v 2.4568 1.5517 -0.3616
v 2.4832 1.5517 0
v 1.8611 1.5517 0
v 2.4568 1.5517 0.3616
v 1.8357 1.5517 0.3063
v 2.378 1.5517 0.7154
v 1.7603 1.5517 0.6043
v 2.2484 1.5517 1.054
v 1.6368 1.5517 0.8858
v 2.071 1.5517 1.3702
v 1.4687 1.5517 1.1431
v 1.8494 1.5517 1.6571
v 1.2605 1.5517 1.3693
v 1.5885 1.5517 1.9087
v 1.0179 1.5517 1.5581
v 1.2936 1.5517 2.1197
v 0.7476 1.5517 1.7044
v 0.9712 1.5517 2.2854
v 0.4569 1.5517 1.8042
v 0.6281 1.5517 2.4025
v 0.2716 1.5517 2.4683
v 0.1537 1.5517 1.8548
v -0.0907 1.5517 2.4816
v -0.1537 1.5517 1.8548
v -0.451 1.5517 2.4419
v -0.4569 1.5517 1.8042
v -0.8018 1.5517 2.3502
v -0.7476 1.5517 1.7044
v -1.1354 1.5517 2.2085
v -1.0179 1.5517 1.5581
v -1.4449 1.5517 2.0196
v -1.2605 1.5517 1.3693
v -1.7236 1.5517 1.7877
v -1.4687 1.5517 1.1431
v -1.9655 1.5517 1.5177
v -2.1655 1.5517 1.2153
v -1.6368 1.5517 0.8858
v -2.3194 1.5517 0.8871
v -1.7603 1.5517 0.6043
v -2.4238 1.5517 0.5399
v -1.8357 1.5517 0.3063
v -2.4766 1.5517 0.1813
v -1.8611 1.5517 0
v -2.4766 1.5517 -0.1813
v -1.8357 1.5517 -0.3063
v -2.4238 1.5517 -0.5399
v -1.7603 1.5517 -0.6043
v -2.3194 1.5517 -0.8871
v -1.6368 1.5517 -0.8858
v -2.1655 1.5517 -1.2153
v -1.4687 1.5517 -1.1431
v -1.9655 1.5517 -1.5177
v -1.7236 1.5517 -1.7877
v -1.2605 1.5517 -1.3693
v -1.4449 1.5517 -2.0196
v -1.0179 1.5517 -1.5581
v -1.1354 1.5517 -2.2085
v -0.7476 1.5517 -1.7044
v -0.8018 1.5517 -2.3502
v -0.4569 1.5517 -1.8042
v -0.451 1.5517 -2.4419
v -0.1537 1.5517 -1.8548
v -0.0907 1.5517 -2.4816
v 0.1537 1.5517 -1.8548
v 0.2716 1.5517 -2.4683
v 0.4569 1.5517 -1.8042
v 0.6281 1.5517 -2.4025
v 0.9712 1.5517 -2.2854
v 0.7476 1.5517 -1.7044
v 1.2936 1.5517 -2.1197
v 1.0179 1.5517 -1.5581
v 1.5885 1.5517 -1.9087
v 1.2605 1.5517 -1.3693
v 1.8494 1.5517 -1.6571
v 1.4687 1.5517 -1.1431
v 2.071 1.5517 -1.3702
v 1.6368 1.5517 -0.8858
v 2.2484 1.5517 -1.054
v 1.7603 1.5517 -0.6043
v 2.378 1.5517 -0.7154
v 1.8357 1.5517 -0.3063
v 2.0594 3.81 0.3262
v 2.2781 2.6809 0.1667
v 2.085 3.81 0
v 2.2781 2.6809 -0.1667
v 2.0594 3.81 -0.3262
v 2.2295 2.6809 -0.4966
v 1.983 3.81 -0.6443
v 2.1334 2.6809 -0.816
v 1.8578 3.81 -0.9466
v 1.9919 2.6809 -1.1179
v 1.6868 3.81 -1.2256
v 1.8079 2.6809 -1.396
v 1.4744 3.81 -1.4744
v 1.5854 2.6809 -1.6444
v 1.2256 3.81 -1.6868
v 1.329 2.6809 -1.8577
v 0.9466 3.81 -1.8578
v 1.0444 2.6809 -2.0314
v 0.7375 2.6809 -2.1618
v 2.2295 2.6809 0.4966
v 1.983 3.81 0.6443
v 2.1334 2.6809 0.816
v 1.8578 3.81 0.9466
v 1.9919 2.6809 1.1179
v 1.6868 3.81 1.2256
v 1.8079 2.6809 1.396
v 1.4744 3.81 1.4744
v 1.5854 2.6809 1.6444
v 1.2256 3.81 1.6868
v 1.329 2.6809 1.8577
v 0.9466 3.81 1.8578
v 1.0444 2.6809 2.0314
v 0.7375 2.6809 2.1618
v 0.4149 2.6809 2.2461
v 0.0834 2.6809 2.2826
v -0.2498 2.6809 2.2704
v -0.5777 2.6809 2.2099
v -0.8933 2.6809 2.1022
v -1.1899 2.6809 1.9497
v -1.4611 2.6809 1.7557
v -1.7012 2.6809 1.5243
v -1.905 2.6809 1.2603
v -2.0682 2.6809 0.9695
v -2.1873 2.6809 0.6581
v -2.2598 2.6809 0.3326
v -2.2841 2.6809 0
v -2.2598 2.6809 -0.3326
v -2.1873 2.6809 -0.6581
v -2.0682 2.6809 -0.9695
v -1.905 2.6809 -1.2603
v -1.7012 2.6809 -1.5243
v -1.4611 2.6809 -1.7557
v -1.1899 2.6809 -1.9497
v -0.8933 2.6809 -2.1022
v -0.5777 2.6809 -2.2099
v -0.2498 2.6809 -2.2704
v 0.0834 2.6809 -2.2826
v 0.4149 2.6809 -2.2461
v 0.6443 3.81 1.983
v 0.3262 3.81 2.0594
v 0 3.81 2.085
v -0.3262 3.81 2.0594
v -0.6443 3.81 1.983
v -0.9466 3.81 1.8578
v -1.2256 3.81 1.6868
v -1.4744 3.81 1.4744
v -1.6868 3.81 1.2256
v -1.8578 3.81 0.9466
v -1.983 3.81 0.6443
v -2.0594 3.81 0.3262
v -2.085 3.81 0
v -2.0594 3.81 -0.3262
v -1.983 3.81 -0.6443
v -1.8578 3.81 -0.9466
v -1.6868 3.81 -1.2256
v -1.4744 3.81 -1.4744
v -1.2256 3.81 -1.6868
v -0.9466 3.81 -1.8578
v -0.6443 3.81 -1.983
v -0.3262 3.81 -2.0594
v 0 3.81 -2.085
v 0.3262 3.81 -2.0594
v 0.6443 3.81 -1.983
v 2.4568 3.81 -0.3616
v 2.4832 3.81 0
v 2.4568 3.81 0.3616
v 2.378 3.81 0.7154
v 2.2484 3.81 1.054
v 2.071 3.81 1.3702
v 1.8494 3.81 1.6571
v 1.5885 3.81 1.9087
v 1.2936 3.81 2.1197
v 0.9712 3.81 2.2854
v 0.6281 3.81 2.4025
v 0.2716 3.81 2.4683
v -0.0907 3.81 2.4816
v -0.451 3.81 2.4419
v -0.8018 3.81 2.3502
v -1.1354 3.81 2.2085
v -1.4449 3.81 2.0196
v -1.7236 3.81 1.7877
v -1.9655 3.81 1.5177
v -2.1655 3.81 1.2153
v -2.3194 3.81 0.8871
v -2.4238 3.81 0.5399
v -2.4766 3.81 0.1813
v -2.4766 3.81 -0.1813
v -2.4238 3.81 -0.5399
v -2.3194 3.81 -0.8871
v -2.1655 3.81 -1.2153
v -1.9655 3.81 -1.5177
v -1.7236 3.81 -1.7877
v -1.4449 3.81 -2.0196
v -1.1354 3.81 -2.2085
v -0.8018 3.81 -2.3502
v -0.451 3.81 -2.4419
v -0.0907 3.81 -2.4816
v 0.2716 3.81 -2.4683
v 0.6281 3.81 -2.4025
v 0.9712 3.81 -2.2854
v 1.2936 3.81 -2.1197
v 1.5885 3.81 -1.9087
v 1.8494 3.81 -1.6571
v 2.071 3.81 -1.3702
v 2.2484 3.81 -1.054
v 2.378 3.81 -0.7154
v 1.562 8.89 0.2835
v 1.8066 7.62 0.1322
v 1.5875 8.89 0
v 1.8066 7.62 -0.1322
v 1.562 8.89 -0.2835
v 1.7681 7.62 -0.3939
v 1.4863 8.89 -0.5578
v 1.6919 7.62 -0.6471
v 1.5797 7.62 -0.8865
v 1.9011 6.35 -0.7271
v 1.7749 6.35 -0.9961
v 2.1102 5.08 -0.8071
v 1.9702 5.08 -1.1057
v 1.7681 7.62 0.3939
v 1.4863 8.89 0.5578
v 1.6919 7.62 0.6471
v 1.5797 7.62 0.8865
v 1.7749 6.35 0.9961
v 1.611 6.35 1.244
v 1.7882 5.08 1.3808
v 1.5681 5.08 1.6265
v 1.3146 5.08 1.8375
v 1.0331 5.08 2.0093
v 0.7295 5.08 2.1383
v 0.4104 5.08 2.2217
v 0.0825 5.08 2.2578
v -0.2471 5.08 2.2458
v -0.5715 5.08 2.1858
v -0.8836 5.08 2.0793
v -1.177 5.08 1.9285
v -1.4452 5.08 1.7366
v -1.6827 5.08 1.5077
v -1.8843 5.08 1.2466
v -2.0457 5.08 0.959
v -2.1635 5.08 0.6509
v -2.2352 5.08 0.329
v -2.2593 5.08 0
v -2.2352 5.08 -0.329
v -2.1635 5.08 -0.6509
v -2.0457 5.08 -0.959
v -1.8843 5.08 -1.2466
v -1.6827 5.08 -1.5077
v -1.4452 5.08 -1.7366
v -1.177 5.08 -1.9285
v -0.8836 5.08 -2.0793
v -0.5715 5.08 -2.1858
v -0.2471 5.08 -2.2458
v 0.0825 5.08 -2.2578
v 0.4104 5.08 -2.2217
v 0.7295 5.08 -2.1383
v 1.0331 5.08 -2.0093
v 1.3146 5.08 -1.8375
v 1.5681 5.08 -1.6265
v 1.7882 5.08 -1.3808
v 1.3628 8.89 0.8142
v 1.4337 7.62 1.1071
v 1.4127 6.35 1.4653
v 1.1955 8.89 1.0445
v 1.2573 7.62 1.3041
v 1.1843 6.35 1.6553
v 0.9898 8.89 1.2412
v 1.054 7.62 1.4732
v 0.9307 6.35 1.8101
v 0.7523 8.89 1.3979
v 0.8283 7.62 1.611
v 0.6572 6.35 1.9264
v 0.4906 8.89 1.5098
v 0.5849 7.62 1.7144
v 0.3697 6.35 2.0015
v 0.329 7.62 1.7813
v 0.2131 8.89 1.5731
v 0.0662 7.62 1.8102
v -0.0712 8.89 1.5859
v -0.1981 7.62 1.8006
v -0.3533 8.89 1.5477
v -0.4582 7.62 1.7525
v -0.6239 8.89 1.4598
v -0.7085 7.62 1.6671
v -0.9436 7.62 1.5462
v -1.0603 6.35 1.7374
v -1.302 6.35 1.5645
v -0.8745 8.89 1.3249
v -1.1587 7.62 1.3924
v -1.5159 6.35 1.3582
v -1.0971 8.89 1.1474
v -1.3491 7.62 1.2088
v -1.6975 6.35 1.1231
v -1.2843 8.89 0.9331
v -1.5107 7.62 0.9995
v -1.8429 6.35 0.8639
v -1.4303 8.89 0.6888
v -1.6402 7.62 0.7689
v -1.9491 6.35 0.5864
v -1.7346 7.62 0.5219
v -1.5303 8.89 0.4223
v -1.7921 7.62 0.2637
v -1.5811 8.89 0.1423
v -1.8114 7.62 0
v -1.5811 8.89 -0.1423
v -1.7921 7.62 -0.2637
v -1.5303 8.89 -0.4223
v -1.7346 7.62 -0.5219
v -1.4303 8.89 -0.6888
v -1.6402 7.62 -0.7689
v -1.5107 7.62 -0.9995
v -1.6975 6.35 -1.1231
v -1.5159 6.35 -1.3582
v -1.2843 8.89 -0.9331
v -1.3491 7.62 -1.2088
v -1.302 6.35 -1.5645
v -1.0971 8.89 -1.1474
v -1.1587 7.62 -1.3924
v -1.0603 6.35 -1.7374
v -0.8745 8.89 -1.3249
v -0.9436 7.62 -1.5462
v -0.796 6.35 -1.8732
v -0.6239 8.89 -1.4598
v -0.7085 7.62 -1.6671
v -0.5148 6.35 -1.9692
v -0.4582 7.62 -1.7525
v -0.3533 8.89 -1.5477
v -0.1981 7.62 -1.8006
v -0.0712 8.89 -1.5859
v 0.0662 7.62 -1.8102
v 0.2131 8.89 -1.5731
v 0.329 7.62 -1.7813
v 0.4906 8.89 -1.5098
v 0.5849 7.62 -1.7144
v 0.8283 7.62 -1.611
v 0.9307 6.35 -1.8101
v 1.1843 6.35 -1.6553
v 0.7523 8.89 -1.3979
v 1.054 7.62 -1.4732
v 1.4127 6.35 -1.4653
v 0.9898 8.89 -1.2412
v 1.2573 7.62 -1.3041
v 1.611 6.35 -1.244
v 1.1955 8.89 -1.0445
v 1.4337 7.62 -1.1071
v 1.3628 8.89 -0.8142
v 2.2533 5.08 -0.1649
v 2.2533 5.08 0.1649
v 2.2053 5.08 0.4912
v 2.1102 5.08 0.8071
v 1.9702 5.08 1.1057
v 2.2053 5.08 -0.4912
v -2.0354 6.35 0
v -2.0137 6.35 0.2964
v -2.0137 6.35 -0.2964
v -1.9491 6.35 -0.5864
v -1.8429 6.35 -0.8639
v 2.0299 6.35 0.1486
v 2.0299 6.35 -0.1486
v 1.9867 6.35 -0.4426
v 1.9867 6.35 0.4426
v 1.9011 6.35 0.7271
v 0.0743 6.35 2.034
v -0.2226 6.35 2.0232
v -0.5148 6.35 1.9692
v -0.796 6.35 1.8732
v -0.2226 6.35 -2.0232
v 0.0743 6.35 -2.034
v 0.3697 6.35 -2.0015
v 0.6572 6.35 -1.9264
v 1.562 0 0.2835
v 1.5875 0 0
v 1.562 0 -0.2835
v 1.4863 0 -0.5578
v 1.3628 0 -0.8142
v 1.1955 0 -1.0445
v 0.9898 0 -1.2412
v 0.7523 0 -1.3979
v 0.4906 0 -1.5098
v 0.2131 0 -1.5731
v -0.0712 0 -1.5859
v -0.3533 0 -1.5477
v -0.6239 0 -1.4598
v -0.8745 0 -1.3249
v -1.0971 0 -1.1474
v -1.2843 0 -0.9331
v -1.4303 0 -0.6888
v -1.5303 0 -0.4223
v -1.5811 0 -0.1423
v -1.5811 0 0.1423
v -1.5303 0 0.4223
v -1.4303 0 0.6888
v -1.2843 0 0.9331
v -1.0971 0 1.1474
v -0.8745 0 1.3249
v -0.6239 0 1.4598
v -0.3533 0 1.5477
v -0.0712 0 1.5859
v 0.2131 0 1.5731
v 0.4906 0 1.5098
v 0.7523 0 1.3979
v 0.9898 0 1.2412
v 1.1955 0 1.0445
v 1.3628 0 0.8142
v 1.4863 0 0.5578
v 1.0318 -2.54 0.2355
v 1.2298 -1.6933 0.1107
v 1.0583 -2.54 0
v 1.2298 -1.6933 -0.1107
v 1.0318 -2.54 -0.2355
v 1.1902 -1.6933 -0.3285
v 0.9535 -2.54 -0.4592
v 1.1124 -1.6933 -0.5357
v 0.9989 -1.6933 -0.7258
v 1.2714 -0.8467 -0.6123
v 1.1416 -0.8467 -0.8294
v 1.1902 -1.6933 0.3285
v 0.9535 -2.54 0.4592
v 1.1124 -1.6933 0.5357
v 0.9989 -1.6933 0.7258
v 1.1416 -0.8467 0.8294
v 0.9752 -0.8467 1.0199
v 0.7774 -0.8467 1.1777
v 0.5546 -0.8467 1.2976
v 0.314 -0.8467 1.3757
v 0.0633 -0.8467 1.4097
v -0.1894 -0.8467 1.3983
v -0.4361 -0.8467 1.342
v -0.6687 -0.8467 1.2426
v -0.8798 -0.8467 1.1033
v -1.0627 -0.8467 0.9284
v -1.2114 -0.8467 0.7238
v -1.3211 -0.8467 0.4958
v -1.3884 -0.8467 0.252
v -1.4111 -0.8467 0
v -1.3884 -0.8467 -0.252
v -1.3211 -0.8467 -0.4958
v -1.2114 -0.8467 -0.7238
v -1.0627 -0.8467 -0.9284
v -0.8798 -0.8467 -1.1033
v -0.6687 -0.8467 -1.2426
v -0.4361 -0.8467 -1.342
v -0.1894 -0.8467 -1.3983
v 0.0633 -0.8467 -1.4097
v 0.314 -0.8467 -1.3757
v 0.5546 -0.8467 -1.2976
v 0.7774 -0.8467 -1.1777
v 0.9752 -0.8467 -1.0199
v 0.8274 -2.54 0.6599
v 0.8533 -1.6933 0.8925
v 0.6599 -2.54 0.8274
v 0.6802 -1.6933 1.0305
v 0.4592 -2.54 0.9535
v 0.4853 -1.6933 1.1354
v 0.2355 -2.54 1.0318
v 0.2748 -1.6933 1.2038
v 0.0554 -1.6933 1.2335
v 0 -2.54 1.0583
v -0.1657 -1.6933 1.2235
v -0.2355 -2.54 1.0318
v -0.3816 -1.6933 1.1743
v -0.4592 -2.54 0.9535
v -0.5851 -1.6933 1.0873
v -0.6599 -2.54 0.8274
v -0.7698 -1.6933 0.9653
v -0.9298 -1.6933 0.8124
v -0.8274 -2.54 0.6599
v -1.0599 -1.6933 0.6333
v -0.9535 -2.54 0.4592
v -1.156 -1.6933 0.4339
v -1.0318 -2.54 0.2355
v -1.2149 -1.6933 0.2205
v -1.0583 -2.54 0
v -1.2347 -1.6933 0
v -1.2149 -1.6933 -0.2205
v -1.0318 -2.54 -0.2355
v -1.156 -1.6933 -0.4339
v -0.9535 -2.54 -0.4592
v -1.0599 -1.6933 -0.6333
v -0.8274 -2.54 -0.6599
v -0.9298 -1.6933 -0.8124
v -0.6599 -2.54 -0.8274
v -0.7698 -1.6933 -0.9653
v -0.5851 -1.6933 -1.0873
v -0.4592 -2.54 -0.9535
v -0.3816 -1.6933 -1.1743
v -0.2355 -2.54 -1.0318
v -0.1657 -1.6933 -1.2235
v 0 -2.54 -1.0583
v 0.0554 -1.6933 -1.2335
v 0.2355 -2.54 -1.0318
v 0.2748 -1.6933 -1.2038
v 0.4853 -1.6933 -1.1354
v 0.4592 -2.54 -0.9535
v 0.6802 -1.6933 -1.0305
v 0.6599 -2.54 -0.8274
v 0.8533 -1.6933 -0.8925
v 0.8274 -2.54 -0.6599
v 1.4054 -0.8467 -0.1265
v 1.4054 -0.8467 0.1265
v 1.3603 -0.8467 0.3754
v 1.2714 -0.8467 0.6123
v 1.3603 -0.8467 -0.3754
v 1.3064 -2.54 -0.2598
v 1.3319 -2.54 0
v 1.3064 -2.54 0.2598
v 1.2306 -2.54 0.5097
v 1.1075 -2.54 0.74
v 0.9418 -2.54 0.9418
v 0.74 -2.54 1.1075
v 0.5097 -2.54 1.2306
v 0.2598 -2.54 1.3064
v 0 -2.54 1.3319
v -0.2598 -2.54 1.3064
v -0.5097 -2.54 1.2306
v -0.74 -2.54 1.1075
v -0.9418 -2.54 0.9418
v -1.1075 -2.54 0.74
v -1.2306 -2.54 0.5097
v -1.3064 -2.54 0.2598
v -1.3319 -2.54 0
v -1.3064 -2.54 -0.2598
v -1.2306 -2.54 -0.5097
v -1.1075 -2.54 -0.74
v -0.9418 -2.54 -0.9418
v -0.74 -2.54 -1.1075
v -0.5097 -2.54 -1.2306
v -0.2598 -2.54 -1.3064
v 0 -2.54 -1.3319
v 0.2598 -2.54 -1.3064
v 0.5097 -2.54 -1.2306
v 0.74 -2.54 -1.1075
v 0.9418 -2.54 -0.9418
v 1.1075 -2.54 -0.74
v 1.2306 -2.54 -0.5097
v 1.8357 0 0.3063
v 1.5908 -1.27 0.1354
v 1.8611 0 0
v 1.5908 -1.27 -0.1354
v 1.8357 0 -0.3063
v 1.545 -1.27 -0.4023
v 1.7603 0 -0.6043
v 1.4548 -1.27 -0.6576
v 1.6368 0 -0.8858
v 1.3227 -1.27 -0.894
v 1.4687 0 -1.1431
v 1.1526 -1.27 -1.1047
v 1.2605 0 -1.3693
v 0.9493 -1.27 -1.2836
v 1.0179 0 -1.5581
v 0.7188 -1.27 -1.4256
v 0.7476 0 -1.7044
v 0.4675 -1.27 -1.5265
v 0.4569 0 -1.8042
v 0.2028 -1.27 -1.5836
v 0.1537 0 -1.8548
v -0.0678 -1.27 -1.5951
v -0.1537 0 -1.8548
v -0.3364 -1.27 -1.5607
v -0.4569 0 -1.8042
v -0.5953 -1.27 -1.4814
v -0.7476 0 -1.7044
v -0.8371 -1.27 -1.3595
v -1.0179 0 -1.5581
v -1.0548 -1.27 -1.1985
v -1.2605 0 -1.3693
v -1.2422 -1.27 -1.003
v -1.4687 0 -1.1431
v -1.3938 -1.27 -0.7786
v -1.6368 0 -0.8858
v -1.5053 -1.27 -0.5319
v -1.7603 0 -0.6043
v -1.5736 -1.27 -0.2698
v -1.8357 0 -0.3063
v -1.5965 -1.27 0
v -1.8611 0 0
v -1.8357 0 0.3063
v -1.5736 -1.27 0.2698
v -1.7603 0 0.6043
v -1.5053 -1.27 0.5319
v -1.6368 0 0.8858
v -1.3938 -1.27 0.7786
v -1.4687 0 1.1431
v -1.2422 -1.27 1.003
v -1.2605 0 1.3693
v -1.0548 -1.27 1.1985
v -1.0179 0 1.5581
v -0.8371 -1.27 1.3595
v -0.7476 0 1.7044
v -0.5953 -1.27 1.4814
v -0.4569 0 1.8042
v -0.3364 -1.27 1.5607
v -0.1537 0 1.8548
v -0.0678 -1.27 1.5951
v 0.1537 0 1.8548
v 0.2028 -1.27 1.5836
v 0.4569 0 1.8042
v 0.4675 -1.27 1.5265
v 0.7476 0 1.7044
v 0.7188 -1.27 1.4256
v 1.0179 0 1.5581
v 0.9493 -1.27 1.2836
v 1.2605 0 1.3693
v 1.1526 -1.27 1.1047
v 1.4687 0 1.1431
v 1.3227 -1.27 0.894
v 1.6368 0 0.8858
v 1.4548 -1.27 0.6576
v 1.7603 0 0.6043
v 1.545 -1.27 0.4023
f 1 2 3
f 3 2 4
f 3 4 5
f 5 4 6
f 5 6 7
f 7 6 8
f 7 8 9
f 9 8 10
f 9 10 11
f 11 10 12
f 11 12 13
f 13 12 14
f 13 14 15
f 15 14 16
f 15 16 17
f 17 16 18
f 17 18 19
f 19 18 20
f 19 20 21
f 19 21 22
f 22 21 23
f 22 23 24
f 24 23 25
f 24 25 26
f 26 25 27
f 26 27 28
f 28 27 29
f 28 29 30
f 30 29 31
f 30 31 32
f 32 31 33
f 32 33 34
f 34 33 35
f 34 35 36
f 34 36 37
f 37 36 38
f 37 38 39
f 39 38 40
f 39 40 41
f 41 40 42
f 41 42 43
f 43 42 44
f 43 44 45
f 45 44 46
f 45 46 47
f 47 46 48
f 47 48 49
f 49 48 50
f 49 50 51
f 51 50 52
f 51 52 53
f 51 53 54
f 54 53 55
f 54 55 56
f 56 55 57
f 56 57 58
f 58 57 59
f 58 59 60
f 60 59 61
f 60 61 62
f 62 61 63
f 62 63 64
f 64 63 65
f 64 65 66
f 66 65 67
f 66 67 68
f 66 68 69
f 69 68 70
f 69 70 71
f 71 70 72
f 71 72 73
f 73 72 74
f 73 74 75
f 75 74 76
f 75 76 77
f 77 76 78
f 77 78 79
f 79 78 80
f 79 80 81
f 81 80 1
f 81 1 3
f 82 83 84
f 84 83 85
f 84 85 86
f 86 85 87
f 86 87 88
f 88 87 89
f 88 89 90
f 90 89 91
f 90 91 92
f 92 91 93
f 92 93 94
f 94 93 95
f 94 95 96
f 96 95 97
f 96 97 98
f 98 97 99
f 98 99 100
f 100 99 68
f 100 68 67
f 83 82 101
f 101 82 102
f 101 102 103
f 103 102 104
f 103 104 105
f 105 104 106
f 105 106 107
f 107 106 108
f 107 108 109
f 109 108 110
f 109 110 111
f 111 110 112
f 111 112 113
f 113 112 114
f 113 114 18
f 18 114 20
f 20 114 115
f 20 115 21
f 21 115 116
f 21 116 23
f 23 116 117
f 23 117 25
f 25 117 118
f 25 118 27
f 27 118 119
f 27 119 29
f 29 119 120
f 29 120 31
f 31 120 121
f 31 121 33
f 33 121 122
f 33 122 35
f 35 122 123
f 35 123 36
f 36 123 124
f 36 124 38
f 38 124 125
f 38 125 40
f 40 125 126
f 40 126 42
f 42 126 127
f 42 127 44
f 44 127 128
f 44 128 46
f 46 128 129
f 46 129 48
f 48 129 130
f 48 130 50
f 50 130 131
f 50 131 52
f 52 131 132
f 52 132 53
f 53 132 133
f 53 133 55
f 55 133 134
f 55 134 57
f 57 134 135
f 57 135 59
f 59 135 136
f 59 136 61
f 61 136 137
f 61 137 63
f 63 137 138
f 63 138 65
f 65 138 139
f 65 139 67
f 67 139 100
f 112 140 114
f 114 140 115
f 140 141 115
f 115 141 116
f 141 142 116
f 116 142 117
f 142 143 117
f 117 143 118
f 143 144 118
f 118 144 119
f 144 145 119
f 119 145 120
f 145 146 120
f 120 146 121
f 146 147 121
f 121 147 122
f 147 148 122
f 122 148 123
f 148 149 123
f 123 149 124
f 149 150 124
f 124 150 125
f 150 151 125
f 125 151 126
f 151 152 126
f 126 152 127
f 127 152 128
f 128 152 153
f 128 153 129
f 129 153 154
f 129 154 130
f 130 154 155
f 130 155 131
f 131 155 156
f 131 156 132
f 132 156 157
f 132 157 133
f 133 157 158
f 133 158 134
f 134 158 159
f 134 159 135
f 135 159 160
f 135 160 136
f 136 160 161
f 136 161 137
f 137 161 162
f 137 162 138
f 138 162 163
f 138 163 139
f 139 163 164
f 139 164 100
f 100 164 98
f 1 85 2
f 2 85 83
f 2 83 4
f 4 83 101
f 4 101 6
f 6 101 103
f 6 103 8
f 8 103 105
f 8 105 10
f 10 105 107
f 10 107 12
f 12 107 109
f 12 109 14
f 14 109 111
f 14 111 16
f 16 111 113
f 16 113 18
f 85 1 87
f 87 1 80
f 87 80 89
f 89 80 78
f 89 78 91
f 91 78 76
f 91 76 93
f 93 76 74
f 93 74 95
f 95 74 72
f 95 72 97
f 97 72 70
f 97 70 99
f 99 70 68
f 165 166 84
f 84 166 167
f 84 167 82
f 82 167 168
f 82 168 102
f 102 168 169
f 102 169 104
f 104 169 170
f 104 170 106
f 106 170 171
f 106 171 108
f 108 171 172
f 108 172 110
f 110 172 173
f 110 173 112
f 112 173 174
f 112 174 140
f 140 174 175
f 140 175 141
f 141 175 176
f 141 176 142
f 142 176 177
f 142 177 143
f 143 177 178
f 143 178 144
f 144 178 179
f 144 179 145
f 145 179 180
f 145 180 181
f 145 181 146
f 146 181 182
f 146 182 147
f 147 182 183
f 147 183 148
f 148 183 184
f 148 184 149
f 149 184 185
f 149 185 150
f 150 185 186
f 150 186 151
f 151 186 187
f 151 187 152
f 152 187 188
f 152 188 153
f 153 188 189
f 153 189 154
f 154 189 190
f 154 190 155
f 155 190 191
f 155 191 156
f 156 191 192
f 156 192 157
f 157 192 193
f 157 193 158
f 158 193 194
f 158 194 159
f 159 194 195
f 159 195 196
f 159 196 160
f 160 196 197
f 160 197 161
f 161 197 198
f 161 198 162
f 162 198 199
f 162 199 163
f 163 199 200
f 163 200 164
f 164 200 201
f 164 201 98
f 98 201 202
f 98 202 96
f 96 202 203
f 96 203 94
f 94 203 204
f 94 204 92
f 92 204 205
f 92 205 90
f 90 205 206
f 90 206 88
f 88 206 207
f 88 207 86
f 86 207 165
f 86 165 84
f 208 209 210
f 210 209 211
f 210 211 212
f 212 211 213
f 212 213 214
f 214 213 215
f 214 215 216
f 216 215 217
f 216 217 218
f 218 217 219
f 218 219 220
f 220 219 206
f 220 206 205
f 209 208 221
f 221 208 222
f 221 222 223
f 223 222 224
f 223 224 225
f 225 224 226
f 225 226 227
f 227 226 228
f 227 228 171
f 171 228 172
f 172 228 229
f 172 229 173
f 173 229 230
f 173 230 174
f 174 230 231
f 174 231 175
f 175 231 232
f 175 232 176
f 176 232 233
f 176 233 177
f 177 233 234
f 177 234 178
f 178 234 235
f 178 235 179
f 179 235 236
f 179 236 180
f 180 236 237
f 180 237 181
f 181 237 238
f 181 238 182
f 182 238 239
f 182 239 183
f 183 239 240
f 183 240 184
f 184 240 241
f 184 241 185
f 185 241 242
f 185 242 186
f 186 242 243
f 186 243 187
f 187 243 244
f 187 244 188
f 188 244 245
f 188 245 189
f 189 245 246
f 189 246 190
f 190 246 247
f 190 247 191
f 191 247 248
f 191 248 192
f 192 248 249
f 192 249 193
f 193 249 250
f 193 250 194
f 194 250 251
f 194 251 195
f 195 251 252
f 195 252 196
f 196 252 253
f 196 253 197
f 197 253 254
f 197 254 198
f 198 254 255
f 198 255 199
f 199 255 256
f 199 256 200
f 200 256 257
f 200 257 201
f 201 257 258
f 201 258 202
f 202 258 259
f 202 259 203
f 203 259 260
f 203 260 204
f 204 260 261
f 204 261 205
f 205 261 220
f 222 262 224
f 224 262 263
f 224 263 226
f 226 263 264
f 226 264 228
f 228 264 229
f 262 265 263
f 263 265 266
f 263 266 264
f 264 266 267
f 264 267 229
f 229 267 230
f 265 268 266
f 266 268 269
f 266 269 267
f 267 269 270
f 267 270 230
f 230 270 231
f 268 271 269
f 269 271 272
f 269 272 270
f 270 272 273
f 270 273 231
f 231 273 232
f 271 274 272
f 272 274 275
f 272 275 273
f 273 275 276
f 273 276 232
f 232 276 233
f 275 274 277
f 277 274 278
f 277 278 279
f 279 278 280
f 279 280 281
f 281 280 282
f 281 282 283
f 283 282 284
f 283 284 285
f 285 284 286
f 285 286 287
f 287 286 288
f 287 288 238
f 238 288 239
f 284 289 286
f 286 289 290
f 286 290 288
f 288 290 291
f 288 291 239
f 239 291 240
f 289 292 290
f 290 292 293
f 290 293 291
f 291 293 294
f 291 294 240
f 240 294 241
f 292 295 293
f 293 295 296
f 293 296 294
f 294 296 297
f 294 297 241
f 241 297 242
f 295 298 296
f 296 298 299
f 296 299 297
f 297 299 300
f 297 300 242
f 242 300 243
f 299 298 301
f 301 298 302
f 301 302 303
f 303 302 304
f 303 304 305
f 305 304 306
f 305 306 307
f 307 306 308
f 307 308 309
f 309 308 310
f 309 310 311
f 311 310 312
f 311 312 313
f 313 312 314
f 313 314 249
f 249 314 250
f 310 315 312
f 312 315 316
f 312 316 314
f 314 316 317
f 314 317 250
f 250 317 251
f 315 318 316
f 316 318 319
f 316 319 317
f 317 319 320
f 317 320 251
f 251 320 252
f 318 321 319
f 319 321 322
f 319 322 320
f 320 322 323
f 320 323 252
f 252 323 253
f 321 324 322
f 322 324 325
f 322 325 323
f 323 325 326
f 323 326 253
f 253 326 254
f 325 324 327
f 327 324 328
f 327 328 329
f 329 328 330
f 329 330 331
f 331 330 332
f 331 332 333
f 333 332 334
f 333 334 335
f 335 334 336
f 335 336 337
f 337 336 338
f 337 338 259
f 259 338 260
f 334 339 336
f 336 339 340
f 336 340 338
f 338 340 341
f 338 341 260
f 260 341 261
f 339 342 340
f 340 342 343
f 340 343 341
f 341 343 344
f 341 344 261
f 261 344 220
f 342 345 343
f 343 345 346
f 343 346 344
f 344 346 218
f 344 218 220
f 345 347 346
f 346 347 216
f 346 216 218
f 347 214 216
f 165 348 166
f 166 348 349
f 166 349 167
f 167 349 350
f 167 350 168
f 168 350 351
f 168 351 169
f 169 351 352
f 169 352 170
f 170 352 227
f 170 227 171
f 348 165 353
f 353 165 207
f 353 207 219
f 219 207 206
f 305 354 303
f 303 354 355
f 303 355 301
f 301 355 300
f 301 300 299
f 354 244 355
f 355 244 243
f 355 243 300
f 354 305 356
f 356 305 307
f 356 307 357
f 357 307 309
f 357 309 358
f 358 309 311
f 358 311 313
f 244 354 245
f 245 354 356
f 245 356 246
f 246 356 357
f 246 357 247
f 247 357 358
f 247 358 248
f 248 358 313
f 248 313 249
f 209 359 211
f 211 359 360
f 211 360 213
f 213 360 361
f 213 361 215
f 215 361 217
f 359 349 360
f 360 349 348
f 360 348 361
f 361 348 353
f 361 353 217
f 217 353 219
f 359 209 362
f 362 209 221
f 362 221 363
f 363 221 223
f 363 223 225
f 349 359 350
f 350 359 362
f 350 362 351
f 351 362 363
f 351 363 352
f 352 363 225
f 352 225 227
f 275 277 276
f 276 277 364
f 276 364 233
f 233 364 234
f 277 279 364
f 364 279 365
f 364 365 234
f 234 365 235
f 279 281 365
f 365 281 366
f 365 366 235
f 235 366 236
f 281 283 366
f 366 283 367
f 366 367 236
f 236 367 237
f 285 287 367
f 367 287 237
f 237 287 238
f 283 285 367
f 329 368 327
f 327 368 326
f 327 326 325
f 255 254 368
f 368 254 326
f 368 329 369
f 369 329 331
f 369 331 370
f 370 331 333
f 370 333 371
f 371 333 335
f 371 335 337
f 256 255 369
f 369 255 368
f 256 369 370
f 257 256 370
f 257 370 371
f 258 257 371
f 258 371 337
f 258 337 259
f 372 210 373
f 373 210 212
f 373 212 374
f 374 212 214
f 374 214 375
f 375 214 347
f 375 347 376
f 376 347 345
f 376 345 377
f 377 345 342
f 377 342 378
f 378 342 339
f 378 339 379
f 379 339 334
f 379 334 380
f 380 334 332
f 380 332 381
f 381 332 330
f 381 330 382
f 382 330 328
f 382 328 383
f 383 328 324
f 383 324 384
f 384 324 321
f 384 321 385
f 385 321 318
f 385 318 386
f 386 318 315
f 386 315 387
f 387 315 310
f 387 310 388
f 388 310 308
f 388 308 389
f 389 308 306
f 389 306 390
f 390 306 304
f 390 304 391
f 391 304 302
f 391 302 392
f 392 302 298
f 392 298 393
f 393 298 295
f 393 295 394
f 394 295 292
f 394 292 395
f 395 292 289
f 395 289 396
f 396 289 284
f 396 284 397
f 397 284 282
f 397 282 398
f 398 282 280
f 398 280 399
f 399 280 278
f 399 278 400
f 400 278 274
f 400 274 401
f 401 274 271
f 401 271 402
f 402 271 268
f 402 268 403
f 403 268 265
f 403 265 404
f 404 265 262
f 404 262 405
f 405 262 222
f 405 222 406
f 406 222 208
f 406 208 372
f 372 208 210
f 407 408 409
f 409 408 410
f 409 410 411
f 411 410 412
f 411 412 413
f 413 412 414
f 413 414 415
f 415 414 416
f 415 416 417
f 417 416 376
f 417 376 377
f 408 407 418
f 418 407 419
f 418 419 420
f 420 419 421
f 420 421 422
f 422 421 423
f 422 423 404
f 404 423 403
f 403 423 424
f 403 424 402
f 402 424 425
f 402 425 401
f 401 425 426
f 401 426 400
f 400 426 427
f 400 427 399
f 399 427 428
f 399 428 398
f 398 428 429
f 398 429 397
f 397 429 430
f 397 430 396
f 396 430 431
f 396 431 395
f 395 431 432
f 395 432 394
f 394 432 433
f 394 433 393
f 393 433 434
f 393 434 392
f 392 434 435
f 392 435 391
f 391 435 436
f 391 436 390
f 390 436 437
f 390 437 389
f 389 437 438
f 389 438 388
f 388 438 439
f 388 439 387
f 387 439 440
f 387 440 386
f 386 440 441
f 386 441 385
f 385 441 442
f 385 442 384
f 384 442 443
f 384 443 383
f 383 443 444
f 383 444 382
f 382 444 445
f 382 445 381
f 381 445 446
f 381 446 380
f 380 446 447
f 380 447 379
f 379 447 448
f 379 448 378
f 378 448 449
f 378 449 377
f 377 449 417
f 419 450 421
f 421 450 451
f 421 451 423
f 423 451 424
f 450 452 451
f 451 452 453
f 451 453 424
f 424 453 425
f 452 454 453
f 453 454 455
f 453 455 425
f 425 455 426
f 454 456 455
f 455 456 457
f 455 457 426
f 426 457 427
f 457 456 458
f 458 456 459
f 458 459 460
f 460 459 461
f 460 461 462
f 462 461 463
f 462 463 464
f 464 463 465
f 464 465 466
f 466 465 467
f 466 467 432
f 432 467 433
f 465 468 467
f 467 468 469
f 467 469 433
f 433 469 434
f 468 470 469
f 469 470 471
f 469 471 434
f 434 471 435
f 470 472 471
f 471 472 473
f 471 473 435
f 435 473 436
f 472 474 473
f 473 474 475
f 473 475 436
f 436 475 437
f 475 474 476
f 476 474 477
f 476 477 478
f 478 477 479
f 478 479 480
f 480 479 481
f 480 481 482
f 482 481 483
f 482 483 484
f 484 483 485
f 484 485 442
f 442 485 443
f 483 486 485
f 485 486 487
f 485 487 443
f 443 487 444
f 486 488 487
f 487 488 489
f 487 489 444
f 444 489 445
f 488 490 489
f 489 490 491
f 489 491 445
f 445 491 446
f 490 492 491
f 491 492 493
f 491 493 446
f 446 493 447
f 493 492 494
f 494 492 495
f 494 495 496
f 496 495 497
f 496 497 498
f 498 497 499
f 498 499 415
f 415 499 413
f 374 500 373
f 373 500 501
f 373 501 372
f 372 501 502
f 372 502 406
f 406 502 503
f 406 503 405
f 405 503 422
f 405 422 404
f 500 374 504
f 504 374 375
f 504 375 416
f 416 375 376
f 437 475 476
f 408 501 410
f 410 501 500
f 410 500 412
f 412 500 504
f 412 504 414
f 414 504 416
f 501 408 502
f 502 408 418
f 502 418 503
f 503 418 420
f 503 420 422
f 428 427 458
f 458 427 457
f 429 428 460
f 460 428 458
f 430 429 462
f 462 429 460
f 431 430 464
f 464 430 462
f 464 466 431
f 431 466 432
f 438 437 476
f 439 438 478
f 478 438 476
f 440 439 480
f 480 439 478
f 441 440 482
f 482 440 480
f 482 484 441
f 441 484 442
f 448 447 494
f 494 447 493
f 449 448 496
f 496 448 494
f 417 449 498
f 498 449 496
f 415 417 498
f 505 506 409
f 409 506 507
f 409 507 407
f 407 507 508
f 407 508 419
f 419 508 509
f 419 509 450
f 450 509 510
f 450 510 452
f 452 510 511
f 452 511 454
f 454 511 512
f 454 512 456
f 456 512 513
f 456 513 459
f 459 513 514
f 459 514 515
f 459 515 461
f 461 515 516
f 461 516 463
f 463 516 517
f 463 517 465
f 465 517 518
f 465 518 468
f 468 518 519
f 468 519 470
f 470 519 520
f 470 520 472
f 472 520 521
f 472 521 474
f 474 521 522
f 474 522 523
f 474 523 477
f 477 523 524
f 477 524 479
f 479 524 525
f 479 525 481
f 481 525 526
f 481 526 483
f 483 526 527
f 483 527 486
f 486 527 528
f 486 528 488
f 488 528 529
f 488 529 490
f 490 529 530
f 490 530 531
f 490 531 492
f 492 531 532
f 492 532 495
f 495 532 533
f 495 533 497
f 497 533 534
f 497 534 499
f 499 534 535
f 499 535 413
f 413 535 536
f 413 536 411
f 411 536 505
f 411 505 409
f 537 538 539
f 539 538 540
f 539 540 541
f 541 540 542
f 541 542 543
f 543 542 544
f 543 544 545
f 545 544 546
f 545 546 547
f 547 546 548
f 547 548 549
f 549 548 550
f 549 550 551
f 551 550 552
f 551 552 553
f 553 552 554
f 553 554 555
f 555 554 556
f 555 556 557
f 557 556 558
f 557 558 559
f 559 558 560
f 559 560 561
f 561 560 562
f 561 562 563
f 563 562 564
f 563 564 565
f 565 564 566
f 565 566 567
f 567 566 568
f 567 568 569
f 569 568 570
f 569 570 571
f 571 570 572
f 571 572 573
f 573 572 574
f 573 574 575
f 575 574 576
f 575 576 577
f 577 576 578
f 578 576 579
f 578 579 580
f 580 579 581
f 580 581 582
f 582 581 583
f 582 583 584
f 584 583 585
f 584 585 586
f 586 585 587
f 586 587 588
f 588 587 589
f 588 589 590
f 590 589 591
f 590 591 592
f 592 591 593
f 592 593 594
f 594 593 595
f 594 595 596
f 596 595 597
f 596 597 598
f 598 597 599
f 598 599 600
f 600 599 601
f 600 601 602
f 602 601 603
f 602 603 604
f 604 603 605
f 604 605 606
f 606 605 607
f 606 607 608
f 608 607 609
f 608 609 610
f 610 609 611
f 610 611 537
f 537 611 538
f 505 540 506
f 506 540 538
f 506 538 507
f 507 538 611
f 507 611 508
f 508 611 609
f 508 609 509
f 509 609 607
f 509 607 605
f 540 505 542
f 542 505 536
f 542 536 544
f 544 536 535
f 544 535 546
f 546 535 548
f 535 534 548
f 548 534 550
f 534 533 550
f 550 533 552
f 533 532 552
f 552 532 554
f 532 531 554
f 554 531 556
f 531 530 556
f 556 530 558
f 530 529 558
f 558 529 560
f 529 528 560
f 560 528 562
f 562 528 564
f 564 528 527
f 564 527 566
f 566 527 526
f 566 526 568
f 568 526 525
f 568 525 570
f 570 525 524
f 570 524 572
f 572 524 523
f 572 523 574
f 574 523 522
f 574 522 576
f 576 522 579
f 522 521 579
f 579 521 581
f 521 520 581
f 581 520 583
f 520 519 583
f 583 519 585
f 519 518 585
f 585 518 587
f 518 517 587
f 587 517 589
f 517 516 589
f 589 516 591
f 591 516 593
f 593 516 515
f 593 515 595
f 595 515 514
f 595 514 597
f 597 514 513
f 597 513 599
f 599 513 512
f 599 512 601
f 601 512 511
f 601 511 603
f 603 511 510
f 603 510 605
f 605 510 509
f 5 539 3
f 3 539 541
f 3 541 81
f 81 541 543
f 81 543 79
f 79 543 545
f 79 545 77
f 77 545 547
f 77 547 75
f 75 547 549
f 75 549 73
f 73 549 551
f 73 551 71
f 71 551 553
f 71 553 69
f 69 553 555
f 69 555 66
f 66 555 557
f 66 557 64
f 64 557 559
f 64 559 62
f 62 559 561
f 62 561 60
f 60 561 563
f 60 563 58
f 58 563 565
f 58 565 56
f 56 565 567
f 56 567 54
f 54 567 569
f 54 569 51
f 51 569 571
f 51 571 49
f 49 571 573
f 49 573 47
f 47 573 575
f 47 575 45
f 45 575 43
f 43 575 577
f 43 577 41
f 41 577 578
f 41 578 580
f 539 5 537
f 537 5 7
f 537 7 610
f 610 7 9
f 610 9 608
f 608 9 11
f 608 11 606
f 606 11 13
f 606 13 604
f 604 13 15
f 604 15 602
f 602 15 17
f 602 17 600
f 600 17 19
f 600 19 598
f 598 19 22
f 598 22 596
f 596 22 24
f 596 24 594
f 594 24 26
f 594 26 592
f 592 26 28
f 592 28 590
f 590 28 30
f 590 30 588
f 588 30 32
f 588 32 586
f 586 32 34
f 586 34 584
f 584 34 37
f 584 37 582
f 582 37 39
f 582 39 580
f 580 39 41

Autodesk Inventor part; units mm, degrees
ref_plane "YZ Plane" through (0, 0, 0) normal (1, 0, 0) x (0, 1, 0)
ref_plane "XZ Plane" through (0, 0, 0) normal (0, 1, 0) x (-1, 0, 0)
ref_plane "XY Plane" through (0, 0, 0) normal (0, 0, 1) x (1, 0, 0)
sketch "Sketch1" plane through (0, 0, 0) normal (0, 0, 1) x (1, 0, 0)
  line L0 (1.5875, 0) -> (1.5875, 8.89)
  line L1 (1.5875, 8.89) -> (2.4832, 3.81)
  line L2 (1.5875, 8.89) -> (6.7459, 8.89) construction
  line L3 (2.4832, 3.81) -> (2.085, 3.81)
  line L4 (2.085, 3.81) -> (2.4832, 1.5517)
  line L5 (2.4832, 1.5517) -> (1.8611, 1.5517)
  line L6 (1.8611, 1.5517) -> (1.8611, 0)
  line L7 (1.8611, 0) -> (1.5875, 0)
  line L8 (0, -4.826) -> (0, 11.176) projected
  line L9 (1.5875, 0) -> (1.8611, 0)
  line L10 (1.8611, 0) -> (1.8611, -2.54) construction
  line L11 (1.8611, -2.54) -> (1.5875, -2.54) construction
  line L12 (1.5875, -2.54) -> (1.5875, 0) construction
  line L13 (1.5875, 0) -> (1.0583, -2.54)
  line L14 (1.0583, -2.54) -> (1.5875, -2.54) construction
  line L15 (1.8611, 0) -> (1.3319, -2.54)
  line L16 (1.0583, -2.54) -> (1.3319, -2.54)
  point P0 (0, 0)
  point P1 (2.1722, 1.5517)
  dimension "d1" = 1.5875
  dimension "d3" = 0
  dimension "d4" = 80
  dimension "d5" = 0.3982
  dimension "d6" = 2.2583
  dimension "d7" = 1.5517
  dimension "d8" = 1.8611
  dimension "d10" = 8.89
  dimension "d11" = 2.54
  dimension "d12" = 0.2736
  dimension "d17" = 0.2736
  dimension "d18" = 1.0583
revolve "Revolution2" add sketch "Sketch1" angle 360 about axis through (0, -10, 0) along (0, 1, 0)
properties part number "eigthinch"
